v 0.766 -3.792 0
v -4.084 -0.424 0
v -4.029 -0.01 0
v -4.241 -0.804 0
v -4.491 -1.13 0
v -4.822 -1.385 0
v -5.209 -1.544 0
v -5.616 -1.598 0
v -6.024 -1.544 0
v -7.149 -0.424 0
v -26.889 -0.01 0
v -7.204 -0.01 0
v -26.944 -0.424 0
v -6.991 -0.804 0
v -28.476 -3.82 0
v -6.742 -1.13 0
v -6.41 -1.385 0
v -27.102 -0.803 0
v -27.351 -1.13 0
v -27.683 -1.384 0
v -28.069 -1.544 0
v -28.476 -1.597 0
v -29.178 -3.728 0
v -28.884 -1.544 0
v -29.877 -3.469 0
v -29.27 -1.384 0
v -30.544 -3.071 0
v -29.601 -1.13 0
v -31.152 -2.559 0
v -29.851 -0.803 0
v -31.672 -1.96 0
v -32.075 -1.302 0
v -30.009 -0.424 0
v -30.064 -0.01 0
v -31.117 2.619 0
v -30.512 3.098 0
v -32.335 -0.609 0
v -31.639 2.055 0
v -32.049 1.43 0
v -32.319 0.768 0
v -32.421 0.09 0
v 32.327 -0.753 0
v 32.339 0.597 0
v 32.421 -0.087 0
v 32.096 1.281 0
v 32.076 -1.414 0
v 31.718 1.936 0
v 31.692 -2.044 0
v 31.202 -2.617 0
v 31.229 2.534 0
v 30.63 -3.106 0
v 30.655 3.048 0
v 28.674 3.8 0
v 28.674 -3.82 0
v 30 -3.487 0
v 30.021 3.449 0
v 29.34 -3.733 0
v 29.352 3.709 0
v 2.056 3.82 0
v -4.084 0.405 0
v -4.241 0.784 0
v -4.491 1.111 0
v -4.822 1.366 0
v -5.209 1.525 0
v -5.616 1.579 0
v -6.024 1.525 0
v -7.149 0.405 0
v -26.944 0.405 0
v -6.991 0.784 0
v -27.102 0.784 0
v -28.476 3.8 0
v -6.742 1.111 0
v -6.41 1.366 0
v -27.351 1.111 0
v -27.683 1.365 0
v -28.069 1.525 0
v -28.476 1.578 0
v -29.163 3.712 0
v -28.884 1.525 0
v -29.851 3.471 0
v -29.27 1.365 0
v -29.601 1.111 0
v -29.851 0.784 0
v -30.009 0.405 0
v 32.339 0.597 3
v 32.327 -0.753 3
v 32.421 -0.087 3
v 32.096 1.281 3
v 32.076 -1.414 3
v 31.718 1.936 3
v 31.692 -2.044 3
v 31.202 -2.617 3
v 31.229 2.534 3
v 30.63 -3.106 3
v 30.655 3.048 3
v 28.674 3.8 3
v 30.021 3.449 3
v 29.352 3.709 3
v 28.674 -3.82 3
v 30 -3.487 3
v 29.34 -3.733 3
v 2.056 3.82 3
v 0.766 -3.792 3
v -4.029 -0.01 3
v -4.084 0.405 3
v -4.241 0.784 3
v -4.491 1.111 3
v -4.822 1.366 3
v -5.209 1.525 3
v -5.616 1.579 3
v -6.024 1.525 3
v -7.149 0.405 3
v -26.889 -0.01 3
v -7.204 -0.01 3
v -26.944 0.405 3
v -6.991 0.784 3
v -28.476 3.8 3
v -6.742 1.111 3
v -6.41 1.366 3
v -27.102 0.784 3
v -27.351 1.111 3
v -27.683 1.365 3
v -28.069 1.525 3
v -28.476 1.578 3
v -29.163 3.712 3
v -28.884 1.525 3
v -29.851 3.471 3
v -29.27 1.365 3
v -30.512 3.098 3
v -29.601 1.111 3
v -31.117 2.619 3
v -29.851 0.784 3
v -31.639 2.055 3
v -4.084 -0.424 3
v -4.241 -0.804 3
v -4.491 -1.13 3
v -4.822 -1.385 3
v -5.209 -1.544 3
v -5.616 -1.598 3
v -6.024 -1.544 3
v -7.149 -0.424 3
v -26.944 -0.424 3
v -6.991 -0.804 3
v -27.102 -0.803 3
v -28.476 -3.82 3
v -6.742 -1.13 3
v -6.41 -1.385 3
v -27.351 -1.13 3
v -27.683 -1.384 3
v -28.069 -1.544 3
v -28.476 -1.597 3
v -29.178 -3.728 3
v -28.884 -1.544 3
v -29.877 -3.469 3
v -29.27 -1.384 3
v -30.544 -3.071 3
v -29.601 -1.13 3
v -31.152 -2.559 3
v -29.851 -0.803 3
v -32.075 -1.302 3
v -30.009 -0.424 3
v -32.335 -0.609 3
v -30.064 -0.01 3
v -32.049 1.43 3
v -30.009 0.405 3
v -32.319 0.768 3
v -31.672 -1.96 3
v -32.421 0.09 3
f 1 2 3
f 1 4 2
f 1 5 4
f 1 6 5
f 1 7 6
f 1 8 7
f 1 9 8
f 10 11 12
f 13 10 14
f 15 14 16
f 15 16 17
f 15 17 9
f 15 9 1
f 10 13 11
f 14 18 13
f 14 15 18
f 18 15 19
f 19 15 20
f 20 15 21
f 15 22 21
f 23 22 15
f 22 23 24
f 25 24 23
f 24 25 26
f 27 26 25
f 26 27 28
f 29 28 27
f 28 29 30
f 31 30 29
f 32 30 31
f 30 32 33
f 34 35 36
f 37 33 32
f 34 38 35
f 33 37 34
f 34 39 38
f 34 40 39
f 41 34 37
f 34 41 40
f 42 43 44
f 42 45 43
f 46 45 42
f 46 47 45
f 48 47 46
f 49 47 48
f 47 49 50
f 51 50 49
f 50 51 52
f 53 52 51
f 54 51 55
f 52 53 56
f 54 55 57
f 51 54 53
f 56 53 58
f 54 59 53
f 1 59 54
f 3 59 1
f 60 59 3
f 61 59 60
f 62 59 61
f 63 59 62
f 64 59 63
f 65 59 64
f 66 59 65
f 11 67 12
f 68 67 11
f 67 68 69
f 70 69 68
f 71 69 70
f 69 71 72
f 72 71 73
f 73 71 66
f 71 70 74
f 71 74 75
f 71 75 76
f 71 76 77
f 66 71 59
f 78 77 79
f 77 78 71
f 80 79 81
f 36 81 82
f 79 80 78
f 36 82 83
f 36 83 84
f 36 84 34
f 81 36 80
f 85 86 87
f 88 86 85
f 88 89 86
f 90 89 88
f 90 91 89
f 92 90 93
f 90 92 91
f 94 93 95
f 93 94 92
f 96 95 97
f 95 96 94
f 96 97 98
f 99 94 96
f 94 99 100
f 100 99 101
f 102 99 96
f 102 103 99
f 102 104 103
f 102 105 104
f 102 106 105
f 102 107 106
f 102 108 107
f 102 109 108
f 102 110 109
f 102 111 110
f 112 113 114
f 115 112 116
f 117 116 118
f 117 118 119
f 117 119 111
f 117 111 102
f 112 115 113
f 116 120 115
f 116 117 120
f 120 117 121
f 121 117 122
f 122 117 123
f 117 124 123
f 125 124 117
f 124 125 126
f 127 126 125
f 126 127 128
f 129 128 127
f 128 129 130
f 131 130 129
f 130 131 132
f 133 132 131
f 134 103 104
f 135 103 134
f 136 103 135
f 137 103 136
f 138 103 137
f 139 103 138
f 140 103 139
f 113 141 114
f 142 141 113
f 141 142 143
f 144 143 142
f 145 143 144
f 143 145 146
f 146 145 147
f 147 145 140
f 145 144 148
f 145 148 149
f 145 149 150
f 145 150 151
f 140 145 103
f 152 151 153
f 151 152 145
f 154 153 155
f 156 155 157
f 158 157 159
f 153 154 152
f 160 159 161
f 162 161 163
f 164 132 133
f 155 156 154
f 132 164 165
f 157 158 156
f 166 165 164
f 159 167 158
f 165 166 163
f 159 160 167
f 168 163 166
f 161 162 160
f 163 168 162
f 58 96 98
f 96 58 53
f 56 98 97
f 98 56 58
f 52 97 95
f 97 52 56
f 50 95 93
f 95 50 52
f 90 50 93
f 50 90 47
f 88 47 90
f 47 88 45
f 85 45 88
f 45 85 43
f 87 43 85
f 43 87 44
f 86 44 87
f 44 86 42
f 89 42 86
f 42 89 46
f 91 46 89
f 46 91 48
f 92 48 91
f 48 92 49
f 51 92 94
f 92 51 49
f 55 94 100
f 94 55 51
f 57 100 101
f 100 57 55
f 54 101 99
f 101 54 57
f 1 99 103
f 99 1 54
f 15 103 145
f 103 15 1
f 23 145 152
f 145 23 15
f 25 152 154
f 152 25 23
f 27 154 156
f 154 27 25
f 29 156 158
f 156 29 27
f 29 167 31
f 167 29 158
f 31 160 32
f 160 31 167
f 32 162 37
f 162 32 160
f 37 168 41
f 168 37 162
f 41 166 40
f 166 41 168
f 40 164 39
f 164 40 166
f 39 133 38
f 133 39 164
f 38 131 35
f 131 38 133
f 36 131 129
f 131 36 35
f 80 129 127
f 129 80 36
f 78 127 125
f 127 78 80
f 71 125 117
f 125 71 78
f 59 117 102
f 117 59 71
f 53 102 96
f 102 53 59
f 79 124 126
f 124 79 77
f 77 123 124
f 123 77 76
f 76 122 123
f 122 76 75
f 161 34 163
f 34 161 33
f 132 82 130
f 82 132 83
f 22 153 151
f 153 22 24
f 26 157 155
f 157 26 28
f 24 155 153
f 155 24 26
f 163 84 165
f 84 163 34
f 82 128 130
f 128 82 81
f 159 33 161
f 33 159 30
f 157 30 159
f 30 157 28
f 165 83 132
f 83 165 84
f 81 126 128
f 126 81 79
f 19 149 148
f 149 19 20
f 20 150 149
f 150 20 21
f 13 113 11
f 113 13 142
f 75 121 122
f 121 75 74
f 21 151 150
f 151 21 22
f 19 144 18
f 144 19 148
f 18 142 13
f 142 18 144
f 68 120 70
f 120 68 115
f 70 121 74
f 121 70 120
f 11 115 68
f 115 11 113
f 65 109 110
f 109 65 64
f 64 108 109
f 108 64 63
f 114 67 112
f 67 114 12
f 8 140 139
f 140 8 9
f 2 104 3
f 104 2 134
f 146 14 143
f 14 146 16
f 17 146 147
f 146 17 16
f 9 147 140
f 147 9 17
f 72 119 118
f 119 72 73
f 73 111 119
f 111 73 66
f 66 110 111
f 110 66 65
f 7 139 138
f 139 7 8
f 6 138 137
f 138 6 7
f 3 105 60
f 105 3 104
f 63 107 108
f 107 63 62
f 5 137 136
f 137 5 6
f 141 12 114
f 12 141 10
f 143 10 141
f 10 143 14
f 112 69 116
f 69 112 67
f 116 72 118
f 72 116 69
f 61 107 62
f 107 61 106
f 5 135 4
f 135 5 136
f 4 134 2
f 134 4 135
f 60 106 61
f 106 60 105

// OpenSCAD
// Module names are of the form poly_<inkscape-path-id>().  As a result,
// you can associate a polygon in this OpenSCAD program with the corresponding
// SVG element in the Inkscape document by looking for the XML element with
// the attribute id="inkscape-path-id".

// fudge value is used to ensure that subtracted solids are a tad taller
// in the z dimension than the polygon being subtracted from.  This helps
// keep the resulting .stl file manifold.
fudge = 0.1;

module poly_path873(h)
{
  scale([25.4/96, -25.4/96, 1]) union()
  {
    difference()
    {
       linear_extrude(height=h)
         polygon([[-107.627195,-14.363981],[7.770227,-14.436019],[108.372804,-14.363981],[110.937218,-14.019180],[113.465277,-13.036013],[115.861740,-11.520579],[118.031367,-9.578981],[119.878917,-7.317321],[121.309149,-4.841700],[122.226821,-2.258220],[122.536694,0.327019],[122.182093,2.847448],[121.232312,5.346131],[119.782672,7.725827],[117.928493,9.889294],[115.765096,11.739288],[113.387802,13.178569],[110.891931,14.109893],[108.372804,14.436019],[2.893236,14.333719],[-107.627195,14.436019],[-110.280621,14.088276],[-112.921734,13.111308],[-115.443871,11.605517],[-117.740368,9.671306],[-119.704562,7.409078],[-121.229790,4.919236],[-122.209389,2.302182],[-122.536694,-0.341681],[-122.150209,-2.901373],[-121.128769,-5.405648],[-119.578823,-7.766943],[-117.606820,-9.897694],[-115.319206,-11.710337],[-112.822432,-13.117308],[-110.222945,-14.031044],[-107.627195,-14.363981]]);
       translate([0, 0, -fudge])
         linear_extrude(height=h+2*fudge)
           polygon([[-101.627195,0.036019],[-101.834887,-1.529487],[-102.431042,-2.963981],[-103.375273,-4.197514],[-104.627195,-5.160134],[-106.086809,-5.763019],[-107.627195,-5.963981],[-109.167580,-5.763019],[-110.627195,-5.160134],[-111.879116,-4.197513],[-112.823347,-2.963981],[-113.419502,-1.529487],[-113.627195,0.036019],[-113.419502,1.601525],[-112.823347,3.036019],[-111.879116,4.269551],[-110.627195,5.232171],[-109.167580,5.835057],[-107.627195,6.036019],[-106.086809,5.835057],[-104.627195,5.232171],[-103.375273,4.269551],[-102.431042,3.036019],[-101.834887,1.601525],[-101.627195,0.036019],[-101.627195,0.036019]]);
       translate([0, 0, -fudge])
         linear_extrude(height=h+2*fudge)
           polygon([[-15.227196,0.036019],[-15.434358,-1.529976],[-16.030226,-2.965016],[-16.974402,-4.199088],[-18.226488,-5.162175],[-19.686424,-5.765367],[-21.227195,-5.966431],[-22.767966,-5.765367],[-24.227902,-5.162175],[-25.479988,-4.199088],[-26.424164,-2.965016],[-27.020032,-1.529976],[-27.227195,0.036019],[-27.020032,1.602013],[-26.424164,3.037054],[-25.479988,4.271126],[-24.227902,5.234212],[-22.767966,5.837404],[-21.227195,6.038468],[-19.686424,5.837404],[-18.226488,5.234212],[-16.974402,4.271126],[-16.030226,3.037054],[-15.434358,1.602013],[-15.227196,0.036019],[-15.227196,0.036019]]);
    }
  }
}

module inkscape(h)
{

poly_path873(h);
}

inkscape(3);
